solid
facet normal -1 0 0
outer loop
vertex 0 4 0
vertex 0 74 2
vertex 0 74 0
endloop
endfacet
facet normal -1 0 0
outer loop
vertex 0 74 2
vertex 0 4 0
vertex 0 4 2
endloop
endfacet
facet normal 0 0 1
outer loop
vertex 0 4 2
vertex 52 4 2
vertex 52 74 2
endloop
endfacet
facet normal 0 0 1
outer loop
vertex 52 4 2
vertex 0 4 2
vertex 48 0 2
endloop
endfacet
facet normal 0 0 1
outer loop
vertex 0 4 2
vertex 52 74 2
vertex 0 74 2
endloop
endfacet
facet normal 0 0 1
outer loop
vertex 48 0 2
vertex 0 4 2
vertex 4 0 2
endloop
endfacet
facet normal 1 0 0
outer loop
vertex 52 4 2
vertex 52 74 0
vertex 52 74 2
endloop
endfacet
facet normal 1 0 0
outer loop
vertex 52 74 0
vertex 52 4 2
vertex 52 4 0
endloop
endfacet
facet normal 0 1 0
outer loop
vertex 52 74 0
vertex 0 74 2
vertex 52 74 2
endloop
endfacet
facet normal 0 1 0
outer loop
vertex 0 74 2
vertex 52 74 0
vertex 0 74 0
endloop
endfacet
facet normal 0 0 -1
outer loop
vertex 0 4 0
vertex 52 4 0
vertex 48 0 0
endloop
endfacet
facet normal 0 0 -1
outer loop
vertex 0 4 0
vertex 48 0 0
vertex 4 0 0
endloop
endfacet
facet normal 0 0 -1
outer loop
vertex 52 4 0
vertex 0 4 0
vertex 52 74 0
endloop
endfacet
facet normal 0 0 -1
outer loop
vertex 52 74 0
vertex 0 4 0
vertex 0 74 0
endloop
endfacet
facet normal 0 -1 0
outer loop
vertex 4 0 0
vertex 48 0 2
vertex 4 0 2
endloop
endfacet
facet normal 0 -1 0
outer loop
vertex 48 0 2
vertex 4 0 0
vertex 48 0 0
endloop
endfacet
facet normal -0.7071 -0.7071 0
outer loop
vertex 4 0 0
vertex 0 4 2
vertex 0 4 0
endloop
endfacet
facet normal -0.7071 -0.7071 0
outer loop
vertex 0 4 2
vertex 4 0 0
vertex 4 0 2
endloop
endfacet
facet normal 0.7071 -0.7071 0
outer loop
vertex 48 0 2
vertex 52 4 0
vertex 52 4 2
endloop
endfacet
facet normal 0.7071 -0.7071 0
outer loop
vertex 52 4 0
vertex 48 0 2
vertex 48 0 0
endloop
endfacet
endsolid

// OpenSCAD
/**
 * This is a divider for Alexandre Chappel's 1x1 organizer box.
 * It is intended to be combined with the model for the box (e.g.
 * via 3DBuilder), the divided box can then be split into two 
 * 0.5x1 boxes.
 */
difference() {
    cube([52, 74, 2]);
        linear_extrude(2) {
            polygon([[0, 0], [4, 0], [0, 4]]);
            polygon([[52, 0], [52, 4], [48, 0]]);
        }
}
